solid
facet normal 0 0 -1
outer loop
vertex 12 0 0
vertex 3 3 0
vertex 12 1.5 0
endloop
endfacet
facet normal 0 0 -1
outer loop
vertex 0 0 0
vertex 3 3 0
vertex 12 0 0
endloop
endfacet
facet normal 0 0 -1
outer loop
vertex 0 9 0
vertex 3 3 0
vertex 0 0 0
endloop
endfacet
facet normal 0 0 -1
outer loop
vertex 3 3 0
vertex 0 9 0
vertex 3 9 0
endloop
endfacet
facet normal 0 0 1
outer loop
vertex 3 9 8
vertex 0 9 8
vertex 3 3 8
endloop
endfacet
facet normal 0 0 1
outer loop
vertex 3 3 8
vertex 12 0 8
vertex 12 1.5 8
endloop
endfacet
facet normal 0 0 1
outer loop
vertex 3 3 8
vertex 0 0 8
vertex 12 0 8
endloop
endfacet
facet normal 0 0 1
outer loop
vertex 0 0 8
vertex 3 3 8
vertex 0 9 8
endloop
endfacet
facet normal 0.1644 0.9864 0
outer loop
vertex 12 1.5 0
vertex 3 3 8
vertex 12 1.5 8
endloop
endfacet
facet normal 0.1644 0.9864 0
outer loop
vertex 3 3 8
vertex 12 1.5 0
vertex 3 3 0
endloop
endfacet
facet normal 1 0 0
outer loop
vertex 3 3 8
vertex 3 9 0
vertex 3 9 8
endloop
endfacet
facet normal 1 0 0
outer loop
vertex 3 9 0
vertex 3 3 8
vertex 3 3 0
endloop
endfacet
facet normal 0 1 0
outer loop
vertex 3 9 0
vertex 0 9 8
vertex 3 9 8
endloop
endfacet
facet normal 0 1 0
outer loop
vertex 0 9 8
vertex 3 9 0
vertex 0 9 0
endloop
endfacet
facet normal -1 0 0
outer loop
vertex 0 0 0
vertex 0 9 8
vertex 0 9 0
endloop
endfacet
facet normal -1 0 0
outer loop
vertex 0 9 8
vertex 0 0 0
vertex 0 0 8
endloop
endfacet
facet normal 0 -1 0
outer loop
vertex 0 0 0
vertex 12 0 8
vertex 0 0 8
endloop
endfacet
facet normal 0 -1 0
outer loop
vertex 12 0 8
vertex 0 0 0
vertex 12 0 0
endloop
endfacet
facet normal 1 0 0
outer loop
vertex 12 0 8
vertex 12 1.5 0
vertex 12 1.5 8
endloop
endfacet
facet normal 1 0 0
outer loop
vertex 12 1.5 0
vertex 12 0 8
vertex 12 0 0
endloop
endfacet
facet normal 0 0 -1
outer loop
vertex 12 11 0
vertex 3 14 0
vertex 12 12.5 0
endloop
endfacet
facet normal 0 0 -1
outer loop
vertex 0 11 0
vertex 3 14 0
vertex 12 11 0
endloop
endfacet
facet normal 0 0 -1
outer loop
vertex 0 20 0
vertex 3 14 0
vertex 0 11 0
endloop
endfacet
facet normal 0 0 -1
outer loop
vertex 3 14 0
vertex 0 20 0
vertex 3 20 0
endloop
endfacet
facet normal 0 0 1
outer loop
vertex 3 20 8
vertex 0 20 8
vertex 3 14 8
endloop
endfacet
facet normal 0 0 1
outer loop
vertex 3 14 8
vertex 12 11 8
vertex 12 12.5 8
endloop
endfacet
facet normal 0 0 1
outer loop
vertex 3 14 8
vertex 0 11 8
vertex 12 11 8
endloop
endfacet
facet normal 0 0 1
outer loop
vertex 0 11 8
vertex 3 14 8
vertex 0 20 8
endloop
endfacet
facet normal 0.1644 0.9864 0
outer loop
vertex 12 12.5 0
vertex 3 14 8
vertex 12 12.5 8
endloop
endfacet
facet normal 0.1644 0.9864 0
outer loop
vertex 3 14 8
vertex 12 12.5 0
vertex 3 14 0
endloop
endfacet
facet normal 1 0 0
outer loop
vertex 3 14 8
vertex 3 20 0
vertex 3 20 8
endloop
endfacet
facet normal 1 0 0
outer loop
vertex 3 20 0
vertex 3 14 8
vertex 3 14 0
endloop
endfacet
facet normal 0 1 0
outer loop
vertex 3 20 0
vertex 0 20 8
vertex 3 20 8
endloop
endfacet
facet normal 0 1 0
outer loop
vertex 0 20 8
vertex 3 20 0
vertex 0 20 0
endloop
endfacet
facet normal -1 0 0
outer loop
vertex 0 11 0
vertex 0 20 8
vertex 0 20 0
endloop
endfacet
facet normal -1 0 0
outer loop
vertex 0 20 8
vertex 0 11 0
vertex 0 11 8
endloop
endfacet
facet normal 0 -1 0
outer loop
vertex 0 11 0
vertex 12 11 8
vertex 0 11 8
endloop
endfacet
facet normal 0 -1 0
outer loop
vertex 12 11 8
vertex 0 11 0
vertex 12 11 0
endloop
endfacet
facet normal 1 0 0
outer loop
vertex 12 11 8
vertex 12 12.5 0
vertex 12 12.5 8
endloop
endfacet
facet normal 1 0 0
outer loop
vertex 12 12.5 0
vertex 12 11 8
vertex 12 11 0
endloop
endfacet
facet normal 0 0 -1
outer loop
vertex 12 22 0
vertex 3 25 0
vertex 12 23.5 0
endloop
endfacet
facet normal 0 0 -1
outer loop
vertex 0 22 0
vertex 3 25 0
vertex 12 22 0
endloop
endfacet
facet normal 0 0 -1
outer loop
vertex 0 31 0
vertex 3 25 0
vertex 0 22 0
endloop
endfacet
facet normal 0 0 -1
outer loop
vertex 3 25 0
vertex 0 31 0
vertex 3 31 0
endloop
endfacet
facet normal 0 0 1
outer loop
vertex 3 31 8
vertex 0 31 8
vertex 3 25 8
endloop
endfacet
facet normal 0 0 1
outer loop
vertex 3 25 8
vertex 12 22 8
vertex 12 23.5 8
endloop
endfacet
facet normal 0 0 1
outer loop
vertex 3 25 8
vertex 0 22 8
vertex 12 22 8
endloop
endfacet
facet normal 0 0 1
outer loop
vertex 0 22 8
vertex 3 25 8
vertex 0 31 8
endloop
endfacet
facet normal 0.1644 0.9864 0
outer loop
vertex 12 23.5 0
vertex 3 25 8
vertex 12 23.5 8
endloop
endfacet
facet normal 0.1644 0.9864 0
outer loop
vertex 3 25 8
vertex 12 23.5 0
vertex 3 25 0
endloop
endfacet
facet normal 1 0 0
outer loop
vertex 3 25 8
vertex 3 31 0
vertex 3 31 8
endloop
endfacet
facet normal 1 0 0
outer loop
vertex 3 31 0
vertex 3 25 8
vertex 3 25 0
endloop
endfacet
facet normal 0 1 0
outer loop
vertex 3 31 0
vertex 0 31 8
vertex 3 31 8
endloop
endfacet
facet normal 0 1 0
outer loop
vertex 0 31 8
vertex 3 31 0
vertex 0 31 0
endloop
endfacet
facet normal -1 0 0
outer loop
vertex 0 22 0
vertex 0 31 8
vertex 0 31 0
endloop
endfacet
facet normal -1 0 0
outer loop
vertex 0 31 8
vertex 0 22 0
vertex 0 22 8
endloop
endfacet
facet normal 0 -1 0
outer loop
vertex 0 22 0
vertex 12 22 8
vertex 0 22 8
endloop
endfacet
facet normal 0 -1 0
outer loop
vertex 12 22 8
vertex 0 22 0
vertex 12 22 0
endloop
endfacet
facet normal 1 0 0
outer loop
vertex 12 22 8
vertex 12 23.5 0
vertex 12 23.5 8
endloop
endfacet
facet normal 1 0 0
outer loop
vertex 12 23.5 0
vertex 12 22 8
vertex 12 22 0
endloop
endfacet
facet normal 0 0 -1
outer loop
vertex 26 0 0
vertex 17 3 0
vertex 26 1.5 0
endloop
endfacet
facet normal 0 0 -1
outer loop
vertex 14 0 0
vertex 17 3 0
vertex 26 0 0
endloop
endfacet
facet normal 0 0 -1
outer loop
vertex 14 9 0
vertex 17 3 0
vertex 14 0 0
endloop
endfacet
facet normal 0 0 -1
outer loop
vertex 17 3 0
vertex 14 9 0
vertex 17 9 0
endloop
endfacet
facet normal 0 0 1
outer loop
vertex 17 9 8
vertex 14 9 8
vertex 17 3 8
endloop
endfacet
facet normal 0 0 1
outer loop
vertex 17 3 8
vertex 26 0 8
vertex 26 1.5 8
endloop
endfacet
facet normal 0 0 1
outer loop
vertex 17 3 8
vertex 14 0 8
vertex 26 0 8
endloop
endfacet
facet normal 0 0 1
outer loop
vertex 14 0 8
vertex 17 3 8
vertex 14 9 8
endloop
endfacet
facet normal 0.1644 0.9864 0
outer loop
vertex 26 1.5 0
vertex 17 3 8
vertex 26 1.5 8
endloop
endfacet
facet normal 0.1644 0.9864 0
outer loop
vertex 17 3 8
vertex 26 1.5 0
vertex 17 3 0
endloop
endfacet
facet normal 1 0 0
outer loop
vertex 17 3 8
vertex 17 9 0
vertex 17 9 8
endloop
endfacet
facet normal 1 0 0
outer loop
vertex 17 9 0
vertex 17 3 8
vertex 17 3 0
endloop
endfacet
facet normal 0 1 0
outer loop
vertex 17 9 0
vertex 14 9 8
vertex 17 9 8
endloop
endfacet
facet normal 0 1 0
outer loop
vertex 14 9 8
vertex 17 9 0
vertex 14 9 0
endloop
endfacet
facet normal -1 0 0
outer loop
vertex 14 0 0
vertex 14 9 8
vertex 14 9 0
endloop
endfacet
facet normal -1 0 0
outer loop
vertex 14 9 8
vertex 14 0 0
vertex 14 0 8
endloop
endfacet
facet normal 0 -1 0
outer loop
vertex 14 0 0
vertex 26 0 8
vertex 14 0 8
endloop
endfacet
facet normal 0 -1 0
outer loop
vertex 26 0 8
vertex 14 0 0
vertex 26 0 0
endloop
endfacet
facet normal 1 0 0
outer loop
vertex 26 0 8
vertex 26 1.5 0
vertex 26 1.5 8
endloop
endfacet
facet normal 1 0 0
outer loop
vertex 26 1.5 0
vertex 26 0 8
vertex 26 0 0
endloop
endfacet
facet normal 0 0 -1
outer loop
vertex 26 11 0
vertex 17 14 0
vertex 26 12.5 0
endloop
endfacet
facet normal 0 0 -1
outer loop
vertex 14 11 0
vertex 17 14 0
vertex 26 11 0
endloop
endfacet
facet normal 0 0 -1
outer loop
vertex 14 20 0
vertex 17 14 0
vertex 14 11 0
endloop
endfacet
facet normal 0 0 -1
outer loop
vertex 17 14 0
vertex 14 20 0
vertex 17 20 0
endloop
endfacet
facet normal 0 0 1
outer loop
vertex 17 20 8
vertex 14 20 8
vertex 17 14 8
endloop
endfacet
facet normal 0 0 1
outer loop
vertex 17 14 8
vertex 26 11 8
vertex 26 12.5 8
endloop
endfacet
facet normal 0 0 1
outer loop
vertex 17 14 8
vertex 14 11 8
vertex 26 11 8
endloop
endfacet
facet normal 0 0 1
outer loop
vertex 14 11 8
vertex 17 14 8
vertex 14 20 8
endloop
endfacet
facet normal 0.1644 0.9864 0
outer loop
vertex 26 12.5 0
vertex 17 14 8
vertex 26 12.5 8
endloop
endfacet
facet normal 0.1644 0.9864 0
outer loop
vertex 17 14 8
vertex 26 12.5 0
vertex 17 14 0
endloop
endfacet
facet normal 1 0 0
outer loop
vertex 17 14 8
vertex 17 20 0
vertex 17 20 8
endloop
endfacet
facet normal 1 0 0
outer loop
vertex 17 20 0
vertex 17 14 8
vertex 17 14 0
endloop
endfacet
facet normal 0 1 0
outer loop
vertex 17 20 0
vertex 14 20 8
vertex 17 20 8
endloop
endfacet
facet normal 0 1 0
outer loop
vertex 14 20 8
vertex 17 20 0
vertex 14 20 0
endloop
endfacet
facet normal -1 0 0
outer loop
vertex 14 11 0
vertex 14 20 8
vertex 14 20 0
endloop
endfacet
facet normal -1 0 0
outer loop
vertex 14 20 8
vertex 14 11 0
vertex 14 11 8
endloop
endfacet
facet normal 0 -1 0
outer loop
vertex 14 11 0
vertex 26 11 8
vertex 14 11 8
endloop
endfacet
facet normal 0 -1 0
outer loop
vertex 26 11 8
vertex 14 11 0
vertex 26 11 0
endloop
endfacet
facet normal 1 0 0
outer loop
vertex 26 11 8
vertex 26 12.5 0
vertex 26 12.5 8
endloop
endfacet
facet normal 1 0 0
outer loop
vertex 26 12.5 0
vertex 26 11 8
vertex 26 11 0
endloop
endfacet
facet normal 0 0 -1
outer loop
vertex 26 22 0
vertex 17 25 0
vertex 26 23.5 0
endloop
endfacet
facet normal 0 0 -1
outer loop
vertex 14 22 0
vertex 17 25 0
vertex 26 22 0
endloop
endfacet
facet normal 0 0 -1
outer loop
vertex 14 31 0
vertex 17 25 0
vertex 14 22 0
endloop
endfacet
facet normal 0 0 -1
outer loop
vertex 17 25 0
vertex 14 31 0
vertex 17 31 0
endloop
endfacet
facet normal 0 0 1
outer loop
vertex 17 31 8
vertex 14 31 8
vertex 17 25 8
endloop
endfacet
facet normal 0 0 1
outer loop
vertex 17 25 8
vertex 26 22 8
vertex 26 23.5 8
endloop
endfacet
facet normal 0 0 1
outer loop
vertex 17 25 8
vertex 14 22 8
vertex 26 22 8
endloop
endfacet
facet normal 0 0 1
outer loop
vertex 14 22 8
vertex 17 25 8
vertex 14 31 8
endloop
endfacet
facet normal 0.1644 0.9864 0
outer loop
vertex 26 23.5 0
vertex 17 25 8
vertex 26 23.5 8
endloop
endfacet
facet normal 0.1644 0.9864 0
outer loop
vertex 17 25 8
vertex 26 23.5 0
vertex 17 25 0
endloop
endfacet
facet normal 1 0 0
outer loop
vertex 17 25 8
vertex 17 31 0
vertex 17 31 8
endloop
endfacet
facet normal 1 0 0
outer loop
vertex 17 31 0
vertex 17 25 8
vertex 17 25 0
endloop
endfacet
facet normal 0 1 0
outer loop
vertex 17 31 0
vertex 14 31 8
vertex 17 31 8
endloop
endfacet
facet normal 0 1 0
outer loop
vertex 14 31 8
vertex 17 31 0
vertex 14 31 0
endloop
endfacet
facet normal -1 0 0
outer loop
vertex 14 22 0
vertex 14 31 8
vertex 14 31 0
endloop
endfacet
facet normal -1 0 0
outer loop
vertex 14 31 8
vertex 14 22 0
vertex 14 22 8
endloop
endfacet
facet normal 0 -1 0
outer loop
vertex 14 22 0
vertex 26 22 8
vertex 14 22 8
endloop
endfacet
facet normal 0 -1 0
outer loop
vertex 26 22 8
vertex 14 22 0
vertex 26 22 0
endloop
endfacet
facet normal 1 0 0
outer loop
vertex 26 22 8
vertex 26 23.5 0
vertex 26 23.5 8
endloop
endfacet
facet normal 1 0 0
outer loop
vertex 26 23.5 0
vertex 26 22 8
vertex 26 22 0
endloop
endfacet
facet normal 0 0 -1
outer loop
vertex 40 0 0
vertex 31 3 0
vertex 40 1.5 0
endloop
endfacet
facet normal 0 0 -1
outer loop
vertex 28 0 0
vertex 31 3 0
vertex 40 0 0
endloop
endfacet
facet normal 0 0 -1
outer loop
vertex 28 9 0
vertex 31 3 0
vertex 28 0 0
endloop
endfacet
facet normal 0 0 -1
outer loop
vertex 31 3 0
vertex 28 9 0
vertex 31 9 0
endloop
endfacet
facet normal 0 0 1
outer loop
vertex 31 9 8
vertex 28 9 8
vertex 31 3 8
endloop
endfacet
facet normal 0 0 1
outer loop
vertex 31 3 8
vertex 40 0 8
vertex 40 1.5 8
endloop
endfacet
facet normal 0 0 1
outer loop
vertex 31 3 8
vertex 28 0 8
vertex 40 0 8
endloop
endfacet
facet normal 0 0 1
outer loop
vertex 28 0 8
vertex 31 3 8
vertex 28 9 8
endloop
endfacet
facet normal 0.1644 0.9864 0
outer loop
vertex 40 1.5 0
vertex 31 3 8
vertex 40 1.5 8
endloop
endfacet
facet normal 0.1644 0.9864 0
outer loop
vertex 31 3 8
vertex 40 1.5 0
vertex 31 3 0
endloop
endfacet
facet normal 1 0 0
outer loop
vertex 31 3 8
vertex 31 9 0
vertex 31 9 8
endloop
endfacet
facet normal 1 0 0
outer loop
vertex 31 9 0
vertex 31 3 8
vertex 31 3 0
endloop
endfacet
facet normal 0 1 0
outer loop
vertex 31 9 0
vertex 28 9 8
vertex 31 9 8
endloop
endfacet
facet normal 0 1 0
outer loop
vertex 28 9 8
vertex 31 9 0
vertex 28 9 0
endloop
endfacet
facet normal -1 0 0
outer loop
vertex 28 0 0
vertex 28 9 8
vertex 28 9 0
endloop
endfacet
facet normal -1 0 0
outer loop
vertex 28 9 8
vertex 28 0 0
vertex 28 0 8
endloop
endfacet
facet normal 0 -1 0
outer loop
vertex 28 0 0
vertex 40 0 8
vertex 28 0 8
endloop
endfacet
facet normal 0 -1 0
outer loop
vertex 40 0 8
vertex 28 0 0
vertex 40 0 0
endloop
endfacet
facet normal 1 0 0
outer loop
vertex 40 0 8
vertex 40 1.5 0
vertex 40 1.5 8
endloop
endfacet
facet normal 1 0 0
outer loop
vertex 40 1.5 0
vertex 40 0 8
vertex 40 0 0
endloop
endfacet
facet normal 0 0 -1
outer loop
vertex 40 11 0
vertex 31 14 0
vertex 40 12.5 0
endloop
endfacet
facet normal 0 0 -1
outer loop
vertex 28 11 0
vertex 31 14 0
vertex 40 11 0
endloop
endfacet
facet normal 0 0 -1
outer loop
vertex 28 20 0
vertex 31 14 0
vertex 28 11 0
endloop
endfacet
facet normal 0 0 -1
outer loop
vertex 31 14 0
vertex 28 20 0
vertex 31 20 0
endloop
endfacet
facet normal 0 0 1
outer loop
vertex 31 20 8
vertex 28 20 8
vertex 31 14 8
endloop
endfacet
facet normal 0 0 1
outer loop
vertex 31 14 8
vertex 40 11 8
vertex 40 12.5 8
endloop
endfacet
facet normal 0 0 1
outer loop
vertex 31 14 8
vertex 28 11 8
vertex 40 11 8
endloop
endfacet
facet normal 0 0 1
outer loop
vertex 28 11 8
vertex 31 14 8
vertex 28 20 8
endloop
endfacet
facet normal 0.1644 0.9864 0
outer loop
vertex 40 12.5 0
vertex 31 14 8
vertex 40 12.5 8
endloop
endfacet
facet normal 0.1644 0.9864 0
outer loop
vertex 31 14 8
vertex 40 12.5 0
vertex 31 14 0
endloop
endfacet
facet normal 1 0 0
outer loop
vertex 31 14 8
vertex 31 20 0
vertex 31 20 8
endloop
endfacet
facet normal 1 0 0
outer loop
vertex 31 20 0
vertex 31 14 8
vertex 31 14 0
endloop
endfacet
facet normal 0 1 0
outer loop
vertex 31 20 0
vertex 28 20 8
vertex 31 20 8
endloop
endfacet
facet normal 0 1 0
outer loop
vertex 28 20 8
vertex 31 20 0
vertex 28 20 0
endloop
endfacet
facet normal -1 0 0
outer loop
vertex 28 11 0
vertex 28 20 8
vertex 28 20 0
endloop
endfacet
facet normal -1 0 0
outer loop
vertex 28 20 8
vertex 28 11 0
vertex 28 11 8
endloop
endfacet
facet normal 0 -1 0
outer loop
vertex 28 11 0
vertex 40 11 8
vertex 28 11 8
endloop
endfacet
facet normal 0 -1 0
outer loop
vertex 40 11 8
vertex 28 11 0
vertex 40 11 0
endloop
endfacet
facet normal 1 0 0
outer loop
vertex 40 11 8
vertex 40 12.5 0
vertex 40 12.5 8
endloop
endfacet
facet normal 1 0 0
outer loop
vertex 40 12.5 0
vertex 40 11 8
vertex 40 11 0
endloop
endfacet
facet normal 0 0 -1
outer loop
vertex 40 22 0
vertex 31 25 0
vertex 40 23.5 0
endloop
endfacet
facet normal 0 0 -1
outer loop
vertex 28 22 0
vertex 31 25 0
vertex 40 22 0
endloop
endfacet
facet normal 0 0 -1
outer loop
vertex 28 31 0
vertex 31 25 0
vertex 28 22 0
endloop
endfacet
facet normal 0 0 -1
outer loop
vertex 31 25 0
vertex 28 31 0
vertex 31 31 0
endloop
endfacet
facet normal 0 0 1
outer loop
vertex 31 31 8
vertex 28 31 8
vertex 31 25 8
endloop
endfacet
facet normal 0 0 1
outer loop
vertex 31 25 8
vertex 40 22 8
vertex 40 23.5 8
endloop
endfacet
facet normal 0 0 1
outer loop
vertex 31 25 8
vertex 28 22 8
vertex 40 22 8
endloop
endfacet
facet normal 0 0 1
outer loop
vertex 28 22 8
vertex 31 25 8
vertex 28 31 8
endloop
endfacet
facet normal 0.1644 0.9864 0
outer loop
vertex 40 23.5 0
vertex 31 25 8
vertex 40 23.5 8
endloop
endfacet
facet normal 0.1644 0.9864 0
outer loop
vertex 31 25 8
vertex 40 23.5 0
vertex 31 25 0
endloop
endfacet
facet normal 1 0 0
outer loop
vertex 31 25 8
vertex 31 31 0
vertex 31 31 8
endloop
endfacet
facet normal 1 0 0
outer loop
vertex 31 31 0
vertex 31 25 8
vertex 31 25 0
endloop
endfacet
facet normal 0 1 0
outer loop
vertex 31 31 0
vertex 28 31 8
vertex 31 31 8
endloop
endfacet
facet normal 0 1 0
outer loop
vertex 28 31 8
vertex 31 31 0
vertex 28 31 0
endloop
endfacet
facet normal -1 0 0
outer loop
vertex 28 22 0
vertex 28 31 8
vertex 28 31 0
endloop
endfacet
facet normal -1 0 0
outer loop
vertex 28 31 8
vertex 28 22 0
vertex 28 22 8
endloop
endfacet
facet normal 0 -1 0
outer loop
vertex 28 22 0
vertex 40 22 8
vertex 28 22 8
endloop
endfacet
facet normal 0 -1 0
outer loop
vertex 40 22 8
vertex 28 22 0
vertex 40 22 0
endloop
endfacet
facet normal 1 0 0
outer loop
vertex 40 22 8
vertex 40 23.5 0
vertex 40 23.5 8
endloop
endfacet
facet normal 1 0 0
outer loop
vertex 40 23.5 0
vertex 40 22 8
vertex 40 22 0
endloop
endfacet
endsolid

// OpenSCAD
t = 3; 
w = 3*t;
h = 4*t;

for( x = [0:2] ) {
    for( y = [0:2] ) {
        translate([(h+2)*x,(w+2)*y,0])
            linear_extrude(height=8)
            polygon(points=[
                [0,0],[0,w],[t,w],[t,t],[h,t/2],[h,0]]);
    }
}
